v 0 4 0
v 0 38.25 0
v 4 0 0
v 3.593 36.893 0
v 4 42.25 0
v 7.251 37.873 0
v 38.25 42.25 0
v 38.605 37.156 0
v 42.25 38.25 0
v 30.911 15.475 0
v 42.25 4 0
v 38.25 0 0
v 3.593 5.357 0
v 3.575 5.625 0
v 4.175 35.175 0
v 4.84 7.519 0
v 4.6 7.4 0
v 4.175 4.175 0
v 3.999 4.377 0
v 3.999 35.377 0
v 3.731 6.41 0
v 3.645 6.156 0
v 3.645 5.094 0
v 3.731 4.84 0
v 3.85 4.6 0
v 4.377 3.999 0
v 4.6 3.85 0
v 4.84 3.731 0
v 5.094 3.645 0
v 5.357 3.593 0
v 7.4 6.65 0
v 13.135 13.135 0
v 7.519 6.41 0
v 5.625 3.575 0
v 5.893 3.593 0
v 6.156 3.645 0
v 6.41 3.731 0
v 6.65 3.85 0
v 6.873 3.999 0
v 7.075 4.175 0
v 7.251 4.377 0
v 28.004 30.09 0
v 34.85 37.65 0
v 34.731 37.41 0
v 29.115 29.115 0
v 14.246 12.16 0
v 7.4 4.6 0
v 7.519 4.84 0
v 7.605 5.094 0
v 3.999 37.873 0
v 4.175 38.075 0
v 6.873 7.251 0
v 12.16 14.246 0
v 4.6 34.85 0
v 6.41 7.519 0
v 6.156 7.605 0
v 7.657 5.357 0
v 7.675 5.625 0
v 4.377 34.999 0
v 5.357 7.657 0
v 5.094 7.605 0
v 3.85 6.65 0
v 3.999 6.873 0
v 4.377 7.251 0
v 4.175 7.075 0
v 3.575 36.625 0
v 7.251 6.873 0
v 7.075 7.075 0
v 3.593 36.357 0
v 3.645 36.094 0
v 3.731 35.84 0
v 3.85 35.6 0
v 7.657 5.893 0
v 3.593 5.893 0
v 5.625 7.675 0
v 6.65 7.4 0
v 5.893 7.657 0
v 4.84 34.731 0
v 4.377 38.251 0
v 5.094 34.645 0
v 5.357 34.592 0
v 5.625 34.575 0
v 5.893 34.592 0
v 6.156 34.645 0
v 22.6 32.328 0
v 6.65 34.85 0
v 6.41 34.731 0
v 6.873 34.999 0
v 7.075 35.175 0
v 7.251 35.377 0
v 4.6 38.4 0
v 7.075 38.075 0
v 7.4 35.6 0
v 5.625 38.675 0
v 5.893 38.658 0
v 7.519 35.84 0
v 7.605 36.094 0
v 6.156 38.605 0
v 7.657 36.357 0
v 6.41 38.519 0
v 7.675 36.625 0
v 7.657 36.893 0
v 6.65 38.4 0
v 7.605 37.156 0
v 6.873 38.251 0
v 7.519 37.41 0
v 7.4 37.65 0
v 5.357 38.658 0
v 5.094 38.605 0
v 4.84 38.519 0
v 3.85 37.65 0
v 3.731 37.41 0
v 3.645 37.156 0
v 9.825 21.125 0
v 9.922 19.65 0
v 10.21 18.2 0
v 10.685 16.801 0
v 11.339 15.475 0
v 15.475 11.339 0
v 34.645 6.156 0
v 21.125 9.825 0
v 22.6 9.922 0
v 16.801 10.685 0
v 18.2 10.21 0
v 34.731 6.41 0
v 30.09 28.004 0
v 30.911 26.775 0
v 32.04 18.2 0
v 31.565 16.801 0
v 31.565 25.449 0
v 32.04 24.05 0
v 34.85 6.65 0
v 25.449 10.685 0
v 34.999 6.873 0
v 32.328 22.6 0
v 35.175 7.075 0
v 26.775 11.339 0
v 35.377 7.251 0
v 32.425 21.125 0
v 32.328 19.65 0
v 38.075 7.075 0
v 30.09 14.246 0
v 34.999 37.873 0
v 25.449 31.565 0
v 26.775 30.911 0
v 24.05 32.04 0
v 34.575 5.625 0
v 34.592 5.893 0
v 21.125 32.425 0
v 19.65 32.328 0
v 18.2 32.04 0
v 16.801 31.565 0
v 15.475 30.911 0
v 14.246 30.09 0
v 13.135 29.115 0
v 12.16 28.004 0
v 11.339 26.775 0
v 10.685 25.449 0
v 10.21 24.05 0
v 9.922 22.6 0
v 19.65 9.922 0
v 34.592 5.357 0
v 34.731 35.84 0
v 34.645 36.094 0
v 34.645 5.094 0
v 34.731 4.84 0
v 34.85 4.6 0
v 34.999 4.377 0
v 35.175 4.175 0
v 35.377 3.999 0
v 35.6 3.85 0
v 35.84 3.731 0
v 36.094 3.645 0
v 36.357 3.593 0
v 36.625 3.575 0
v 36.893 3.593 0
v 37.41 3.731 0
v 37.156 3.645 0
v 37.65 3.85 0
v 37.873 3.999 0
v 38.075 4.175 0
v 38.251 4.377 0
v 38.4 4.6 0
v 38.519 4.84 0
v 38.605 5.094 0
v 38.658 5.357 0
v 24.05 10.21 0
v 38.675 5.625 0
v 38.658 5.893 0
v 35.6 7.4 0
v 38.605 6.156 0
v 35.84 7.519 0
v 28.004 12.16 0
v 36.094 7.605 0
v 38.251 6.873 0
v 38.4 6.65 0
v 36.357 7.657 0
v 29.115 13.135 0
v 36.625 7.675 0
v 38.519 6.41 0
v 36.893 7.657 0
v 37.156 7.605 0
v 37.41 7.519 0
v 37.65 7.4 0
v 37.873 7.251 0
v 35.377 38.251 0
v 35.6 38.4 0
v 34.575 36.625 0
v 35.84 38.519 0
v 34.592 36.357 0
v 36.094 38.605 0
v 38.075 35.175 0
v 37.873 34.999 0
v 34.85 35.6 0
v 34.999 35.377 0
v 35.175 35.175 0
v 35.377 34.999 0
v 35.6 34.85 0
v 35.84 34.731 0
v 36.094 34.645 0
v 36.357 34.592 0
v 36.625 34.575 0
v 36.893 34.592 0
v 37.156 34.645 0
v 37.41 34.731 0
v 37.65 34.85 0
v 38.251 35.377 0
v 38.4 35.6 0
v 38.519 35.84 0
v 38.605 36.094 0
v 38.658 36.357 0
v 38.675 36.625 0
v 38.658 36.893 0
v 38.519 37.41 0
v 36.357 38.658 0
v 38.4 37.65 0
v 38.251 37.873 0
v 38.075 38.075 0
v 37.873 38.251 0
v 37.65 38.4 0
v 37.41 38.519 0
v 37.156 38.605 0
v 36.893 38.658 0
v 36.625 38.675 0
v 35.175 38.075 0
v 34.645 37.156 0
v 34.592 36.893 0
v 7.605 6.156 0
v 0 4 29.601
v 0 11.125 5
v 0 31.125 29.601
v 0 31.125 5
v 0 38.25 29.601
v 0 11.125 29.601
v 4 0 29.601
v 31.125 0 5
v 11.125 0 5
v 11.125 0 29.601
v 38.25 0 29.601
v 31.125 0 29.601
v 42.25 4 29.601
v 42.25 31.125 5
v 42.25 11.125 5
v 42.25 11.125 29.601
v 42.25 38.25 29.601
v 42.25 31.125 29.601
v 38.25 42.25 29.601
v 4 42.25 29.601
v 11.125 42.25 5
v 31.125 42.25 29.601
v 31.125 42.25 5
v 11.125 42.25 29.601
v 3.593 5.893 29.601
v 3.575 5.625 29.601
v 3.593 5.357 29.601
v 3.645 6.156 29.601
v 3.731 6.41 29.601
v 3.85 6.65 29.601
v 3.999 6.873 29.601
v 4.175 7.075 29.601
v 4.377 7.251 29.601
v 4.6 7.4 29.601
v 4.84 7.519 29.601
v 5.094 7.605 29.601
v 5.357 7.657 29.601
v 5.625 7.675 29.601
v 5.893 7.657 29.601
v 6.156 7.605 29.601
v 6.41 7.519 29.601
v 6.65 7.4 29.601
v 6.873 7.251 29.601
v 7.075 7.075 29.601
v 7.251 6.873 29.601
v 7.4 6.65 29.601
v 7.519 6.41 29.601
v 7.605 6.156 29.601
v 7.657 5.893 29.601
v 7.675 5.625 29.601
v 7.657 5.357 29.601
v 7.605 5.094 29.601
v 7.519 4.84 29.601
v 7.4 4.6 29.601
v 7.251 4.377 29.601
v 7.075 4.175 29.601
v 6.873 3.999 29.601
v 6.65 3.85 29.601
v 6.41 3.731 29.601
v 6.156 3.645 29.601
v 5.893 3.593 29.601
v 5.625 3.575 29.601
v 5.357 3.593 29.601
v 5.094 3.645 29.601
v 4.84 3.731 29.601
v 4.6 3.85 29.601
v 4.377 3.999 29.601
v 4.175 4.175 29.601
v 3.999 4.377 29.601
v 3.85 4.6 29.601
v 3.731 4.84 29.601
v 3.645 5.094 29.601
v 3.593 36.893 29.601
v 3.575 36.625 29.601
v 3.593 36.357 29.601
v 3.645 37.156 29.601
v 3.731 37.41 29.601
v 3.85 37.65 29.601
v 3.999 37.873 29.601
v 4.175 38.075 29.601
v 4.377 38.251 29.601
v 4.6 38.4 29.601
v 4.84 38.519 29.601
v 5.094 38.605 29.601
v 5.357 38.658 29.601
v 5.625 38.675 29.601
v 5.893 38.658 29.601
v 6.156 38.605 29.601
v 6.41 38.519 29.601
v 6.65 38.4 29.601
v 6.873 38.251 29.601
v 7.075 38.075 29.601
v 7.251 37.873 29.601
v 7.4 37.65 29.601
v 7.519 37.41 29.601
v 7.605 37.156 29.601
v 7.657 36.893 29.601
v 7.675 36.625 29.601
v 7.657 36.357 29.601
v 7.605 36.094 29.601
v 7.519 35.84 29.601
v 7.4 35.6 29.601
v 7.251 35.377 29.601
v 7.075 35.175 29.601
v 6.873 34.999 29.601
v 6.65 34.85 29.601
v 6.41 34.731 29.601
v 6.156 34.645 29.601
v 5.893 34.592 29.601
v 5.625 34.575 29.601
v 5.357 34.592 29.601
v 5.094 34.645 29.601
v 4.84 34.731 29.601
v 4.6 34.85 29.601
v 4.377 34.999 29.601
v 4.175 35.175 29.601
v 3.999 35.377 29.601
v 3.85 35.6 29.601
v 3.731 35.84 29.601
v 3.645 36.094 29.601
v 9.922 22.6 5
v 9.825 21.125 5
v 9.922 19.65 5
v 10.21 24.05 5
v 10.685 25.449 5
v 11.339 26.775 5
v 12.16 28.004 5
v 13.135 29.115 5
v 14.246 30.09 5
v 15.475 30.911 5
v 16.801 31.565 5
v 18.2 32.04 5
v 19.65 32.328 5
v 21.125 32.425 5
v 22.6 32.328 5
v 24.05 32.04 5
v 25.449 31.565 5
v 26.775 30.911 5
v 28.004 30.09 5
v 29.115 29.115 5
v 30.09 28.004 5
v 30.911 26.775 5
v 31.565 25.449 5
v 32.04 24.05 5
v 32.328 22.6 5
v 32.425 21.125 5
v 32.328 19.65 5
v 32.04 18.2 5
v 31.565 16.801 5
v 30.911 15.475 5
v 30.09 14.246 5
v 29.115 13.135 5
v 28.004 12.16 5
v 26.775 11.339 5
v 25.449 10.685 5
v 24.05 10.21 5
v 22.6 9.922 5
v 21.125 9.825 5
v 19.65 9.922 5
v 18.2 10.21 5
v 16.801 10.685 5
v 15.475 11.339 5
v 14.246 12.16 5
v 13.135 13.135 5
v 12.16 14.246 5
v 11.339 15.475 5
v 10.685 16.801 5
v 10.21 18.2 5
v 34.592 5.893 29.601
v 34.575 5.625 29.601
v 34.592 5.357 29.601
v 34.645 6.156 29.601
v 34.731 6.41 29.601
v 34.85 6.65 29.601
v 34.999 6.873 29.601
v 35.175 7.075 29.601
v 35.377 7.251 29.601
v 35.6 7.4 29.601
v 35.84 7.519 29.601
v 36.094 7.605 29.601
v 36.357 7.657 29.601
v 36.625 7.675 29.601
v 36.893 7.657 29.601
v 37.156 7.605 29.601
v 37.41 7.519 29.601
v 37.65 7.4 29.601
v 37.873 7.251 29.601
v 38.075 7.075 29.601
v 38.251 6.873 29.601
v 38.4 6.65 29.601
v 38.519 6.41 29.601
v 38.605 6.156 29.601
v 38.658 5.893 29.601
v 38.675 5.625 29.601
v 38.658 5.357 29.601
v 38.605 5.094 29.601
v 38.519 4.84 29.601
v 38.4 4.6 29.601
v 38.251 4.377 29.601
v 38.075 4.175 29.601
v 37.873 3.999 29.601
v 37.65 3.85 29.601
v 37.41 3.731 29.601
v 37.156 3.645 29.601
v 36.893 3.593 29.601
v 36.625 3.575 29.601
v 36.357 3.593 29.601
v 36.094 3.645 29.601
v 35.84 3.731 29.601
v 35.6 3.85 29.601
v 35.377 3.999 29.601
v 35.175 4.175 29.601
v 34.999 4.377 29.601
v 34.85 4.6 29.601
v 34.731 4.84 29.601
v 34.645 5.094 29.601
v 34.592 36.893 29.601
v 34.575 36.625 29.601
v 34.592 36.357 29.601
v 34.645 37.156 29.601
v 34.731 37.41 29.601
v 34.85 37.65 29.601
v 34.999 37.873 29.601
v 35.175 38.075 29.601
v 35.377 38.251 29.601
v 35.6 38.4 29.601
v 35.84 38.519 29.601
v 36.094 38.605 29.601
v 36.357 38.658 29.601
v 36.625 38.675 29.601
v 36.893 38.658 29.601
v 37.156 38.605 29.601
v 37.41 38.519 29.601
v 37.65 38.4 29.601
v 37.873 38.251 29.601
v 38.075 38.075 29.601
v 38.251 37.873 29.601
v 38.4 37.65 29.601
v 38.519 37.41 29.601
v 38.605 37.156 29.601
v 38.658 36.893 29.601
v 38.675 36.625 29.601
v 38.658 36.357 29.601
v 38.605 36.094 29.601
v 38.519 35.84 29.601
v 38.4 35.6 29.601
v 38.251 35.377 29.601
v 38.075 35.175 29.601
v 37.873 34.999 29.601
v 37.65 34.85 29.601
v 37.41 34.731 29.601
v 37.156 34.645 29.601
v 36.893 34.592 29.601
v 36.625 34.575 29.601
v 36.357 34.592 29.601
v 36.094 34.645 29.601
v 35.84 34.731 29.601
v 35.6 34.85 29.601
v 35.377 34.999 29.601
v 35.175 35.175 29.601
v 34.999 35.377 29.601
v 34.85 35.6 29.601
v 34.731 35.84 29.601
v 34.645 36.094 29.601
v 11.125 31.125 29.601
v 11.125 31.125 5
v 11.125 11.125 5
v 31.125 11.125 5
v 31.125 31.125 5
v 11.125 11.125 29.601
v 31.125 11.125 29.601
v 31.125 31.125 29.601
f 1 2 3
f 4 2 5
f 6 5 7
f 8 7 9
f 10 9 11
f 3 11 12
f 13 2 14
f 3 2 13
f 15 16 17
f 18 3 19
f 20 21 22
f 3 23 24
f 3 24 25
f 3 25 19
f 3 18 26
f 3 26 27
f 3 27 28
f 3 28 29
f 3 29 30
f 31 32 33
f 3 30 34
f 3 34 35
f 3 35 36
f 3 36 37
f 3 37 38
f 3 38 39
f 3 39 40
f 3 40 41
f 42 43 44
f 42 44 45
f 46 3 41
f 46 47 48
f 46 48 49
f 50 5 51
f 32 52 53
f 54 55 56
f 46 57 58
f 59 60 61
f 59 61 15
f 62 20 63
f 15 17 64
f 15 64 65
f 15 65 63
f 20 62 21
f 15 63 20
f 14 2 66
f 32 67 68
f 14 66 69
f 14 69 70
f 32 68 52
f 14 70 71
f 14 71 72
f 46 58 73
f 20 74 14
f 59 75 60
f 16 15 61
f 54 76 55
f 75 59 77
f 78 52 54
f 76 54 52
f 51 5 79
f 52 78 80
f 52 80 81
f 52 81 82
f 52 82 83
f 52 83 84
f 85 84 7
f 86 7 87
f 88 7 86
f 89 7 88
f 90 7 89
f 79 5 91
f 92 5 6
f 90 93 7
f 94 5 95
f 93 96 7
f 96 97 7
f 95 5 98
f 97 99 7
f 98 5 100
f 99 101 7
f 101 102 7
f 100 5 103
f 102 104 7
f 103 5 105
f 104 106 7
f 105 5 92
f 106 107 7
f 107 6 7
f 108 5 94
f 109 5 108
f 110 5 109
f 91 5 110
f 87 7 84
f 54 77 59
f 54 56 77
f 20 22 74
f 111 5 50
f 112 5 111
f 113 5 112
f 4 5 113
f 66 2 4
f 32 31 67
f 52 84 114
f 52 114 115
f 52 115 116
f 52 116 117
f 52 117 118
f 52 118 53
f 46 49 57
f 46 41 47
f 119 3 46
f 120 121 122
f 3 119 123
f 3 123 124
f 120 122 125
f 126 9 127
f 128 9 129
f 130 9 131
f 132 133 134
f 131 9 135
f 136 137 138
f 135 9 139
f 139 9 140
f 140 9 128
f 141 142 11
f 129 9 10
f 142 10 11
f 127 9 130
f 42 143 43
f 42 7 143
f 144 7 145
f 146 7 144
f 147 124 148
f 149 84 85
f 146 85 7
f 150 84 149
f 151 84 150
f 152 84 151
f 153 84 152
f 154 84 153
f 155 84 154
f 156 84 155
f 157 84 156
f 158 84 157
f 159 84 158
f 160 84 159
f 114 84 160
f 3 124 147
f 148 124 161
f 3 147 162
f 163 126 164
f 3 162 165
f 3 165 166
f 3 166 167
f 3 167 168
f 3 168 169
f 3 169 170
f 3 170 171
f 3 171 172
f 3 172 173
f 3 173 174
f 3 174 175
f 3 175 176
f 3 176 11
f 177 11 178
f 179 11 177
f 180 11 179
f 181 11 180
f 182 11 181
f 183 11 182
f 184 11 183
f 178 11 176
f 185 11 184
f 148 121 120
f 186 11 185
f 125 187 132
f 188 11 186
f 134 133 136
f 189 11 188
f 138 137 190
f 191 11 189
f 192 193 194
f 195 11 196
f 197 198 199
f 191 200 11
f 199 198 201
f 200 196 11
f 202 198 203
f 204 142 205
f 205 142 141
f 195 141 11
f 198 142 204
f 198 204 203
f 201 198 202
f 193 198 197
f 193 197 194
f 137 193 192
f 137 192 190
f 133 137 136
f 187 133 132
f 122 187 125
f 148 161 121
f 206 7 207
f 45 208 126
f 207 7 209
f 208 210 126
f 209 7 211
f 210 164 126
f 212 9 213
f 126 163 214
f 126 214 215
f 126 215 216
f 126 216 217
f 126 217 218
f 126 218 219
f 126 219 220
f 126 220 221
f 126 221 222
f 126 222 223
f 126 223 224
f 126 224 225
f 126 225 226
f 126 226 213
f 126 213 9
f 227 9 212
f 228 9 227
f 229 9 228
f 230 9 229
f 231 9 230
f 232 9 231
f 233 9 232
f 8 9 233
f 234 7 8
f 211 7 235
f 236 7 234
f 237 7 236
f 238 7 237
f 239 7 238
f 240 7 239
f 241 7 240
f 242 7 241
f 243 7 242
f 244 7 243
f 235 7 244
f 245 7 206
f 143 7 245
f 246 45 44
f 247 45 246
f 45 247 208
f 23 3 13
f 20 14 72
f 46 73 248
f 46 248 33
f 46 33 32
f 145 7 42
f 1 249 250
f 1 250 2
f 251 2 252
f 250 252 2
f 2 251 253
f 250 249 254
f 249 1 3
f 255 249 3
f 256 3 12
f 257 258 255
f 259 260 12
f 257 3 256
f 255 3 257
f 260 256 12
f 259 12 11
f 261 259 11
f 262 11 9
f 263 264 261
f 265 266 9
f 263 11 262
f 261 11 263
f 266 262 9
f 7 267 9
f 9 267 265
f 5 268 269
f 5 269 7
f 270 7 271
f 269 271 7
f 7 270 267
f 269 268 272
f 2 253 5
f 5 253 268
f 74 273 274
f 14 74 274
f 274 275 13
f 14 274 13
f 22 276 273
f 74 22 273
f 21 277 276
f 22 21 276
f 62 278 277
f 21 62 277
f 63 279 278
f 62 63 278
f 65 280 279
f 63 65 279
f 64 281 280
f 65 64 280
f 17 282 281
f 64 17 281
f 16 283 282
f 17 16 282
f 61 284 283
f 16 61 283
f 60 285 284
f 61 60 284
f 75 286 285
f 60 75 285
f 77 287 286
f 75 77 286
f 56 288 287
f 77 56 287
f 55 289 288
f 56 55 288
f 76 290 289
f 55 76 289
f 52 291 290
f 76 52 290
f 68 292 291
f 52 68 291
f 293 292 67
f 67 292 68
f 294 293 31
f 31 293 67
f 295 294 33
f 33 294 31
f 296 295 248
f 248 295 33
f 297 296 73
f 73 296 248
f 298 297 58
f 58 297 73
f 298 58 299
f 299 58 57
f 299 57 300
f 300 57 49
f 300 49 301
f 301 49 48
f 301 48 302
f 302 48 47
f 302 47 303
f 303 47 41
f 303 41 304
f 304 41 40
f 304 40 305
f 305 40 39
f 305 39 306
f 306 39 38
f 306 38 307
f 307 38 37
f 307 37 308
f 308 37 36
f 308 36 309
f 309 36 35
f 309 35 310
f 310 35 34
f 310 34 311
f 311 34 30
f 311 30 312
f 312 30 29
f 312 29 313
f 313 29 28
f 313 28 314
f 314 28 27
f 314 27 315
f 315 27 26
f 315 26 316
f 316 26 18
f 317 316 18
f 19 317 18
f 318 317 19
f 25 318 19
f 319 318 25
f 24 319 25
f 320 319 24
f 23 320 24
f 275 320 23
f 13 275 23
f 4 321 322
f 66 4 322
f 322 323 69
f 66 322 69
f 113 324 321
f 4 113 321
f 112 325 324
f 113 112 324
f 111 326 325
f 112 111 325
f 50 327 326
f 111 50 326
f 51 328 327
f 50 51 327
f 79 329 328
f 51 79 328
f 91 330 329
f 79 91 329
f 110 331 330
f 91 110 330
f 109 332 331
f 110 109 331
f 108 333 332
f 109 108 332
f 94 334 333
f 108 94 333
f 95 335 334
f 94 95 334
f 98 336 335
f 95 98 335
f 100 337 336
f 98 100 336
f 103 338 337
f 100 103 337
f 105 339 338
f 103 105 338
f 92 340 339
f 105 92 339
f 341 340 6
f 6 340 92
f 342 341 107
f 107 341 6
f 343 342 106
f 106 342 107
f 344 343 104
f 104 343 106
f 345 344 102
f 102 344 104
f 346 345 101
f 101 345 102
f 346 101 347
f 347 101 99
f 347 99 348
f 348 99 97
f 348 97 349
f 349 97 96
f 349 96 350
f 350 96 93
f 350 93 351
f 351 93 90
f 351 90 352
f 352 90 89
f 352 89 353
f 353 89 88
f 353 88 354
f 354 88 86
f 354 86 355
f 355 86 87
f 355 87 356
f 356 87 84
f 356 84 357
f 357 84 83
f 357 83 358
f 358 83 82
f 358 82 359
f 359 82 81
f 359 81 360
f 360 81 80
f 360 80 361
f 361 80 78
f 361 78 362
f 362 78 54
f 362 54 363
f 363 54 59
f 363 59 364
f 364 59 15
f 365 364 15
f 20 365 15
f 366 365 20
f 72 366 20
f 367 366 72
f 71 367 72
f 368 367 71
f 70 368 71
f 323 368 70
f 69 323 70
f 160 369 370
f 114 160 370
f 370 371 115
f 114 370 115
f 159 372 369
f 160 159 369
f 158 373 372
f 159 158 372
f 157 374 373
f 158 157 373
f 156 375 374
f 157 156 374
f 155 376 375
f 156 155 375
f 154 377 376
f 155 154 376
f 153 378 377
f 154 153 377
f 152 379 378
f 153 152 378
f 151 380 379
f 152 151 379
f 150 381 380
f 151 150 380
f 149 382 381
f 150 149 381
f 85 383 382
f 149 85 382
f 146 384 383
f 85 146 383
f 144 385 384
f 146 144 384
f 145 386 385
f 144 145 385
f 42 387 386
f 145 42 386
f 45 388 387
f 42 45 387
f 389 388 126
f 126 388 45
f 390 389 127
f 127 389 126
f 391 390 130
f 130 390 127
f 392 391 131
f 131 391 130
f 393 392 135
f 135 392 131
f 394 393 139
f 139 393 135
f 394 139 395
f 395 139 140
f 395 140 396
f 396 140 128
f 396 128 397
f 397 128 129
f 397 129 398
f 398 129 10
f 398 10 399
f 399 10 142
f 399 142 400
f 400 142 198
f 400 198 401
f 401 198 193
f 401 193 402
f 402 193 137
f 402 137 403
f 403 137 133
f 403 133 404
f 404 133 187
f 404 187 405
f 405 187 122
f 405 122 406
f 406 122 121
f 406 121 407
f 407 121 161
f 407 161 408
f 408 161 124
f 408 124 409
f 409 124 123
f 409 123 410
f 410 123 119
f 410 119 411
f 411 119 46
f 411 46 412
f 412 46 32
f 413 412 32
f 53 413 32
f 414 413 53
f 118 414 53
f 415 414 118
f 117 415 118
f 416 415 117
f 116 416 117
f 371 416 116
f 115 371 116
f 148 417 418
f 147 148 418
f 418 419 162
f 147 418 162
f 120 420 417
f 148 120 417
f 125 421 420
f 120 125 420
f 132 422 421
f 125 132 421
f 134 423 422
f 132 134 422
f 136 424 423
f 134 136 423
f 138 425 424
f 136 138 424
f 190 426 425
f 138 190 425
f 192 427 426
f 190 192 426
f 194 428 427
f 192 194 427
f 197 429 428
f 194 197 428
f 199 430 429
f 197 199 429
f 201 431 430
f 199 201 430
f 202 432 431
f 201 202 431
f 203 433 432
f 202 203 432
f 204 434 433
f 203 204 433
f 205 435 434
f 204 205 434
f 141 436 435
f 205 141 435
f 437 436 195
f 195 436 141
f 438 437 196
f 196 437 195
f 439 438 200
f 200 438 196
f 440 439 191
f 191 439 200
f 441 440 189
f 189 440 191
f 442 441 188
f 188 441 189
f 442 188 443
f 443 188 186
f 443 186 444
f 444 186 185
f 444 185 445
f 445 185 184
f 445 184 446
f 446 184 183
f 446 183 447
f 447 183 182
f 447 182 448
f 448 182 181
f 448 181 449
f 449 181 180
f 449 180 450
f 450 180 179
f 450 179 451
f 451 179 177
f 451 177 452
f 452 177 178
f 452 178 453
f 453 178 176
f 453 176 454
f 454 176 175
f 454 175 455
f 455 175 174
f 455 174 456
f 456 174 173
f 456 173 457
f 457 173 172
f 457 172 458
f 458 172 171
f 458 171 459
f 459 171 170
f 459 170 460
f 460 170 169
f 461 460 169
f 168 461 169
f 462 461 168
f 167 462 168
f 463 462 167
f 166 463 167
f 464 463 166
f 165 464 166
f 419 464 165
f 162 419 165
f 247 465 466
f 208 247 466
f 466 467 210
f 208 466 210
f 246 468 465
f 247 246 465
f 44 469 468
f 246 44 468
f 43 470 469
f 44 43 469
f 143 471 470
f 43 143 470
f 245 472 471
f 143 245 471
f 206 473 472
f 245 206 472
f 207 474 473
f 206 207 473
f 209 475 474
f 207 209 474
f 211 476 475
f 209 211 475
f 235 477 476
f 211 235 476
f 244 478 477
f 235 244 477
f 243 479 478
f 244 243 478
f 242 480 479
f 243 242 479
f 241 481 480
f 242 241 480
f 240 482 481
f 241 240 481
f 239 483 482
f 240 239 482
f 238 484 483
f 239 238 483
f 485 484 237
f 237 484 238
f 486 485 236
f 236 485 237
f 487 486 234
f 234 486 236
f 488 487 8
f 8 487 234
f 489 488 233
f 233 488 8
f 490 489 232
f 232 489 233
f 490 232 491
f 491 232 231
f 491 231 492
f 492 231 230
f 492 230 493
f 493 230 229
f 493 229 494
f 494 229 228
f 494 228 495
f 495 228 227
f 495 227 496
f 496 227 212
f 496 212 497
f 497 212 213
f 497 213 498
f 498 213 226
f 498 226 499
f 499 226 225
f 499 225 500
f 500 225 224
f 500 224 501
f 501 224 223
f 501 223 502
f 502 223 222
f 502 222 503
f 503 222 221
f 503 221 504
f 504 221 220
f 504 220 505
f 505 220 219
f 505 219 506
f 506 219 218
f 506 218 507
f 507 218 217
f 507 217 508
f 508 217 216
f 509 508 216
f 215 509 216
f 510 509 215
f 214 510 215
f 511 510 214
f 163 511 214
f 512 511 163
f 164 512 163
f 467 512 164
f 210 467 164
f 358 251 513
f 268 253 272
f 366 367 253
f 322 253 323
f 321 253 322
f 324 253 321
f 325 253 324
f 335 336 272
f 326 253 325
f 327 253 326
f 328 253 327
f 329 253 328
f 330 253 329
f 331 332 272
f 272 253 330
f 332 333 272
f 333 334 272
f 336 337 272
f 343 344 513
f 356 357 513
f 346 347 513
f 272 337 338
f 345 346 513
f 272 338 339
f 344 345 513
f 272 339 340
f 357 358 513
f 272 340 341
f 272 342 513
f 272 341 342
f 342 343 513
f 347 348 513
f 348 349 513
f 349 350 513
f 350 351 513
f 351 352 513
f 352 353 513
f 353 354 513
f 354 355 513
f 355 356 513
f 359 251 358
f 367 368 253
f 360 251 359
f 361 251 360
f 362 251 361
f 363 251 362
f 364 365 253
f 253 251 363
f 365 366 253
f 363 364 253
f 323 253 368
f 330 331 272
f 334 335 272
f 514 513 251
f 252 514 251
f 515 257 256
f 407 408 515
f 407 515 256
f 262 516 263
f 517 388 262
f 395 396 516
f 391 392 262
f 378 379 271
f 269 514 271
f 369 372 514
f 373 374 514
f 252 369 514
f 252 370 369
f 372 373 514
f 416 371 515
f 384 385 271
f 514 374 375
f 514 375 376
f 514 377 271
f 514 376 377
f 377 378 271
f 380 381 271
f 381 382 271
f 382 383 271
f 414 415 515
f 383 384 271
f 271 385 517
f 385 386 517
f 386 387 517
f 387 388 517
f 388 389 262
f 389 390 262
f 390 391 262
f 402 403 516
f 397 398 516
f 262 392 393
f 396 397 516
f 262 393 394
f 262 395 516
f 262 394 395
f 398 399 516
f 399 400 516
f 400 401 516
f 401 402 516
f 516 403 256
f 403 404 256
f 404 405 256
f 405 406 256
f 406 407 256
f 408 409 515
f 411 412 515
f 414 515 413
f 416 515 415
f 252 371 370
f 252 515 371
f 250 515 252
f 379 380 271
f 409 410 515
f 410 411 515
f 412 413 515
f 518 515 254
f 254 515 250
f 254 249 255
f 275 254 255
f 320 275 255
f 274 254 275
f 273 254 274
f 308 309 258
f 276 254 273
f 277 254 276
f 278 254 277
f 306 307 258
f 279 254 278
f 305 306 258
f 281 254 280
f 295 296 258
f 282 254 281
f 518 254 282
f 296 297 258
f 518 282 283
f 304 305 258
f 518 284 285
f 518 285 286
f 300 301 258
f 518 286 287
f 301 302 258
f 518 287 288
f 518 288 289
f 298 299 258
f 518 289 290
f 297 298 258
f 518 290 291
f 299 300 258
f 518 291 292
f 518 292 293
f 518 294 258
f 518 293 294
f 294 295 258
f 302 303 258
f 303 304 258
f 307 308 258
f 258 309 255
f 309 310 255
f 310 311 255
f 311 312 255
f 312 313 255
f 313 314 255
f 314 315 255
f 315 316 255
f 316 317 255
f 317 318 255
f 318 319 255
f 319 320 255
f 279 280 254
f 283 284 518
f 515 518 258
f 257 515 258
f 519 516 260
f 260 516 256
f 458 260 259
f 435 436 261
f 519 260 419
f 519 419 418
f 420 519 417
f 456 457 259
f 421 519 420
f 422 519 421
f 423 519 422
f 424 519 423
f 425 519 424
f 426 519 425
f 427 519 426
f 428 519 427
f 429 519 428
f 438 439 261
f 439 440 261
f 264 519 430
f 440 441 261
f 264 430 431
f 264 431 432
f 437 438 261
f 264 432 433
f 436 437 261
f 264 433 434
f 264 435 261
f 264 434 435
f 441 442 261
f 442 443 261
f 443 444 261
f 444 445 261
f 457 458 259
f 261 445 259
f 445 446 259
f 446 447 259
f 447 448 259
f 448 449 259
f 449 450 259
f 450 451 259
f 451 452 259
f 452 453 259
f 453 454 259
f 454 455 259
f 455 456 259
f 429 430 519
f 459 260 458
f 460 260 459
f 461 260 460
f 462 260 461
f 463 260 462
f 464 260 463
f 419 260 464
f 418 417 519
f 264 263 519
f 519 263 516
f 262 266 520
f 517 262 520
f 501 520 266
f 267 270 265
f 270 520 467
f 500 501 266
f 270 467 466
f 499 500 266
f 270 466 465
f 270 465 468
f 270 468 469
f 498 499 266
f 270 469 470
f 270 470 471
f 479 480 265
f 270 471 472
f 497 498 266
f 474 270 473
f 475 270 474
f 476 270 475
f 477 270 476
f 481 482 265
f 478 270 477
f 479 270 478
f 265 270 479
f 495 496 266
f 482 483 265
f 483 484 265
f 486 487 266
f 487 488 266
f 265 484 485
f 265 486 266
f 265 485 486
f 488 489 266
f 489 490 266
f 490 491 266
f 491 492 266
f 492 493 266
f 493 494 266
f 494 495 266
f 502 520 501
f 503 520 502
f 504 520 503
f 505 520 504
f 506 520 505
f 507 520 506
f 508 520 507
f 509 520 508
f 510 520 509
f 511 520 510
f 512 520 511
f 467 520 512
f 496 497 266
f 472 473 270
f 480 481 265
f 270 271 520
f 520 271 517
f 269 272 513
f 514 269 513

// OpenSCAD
// file: scad/tapercube.scad
module tapercube(width=10, height=10, depth=10, taper=3.0) {
  plane = 0.001;
  hull() {
    translate([taper/2,taper/2,0])
      cube([width-taper, height-taper, plane]);
    translate([0,0,taper/2]) {
      translate([0,taper/2])
        cube([width, height-taper, plane]);
      translate([taper/2,0])
        cube([width-taper, height, plane]);
    }

    translate([taper/2,taper/2,depth-plane])
      cube([width-taper, height-taper, plane]);
    translate([0,0,depth-taper/2]) {
      translate([0,taper/2])
        cube([width, height-taper, plane]);
      translate([taper/2,0])
        cube([width-taper, height, plane]);
    }
  }
}

module cornerless_cube(width=10, height=10, depth=10, taper=3.0) {
  plane = 0.001;
  hull() {
    translate([0,taper/2])
      cube([width, height-taper, plane]);
    translate([taper/2,0])
      cube([width-taper, height, plane]);

    translate([0,0,depth]) {
      translate([0,taper/2])
        cube([width, height-taper, plane]);
      translate([taper/2,0])
        cube([width-taper, height, plane]);
    }
  }
}
// main file
include <scad/tapercube.scad>;

long=100;
r_fudge = 0.3;

around_depth = 8.8;
belt_depth = 7.0;
thickness = 5.0;

adapter_depth = around_depth * 2 + belt_depth + thickness;

motor_width = 42.25;
motor_height = motor_width;
motor_dist_between_mount_holes = 31;
motor_mount_hole_r = 1.75 + r_fudge;
motor_axle_hole_r = 4 + r_fudge;
motor_ring_r = 11.0 + r_fudge;
motor_ring_depth = 2.0;

$fn = 48;

module motor_mount_holes() {
  d = motor_dist_between_mount_holes;
  r = sqrt(d*d*2)/2;
  for (theta=[45,135,225,315])
    translate([cos(theta)*r, sin(theta)*r])
      cylinder(r=motor_mount_hole_r, h=long, center=true);
}

module mount_adapter() {
  iratio = 1.7;
  ibar = 20;
  difference() {
    cornerless_cube(motor_width, motor_height, adapter_depth, 8.0);

    translate([motor_width/2, motor_height/2]) {
      motor_mount_holes();

      // translate([-motor_width/2/iratio, -motor_height/2/iratio, thickness])
        // cornerless_cube(motor_width/iratio, motor_height/iratio, adapter_depth);

      // cylinder(r=motor_axle_hole_r, h=long, center=true);

      translate([0,0,-0.01])
        cylinder(r=motor_ring_r, h=long);
    }

    translate([motor_width/2-ibar/2, -1, thickness]) {
      cube([ibar, long, adapter_depth]);
    }

    translate([-1, motor_height/2-ibar/2, thickness]) {
      cube([long, ibar, adapter_depth]);
    }
  }

}

mount_adapter();
